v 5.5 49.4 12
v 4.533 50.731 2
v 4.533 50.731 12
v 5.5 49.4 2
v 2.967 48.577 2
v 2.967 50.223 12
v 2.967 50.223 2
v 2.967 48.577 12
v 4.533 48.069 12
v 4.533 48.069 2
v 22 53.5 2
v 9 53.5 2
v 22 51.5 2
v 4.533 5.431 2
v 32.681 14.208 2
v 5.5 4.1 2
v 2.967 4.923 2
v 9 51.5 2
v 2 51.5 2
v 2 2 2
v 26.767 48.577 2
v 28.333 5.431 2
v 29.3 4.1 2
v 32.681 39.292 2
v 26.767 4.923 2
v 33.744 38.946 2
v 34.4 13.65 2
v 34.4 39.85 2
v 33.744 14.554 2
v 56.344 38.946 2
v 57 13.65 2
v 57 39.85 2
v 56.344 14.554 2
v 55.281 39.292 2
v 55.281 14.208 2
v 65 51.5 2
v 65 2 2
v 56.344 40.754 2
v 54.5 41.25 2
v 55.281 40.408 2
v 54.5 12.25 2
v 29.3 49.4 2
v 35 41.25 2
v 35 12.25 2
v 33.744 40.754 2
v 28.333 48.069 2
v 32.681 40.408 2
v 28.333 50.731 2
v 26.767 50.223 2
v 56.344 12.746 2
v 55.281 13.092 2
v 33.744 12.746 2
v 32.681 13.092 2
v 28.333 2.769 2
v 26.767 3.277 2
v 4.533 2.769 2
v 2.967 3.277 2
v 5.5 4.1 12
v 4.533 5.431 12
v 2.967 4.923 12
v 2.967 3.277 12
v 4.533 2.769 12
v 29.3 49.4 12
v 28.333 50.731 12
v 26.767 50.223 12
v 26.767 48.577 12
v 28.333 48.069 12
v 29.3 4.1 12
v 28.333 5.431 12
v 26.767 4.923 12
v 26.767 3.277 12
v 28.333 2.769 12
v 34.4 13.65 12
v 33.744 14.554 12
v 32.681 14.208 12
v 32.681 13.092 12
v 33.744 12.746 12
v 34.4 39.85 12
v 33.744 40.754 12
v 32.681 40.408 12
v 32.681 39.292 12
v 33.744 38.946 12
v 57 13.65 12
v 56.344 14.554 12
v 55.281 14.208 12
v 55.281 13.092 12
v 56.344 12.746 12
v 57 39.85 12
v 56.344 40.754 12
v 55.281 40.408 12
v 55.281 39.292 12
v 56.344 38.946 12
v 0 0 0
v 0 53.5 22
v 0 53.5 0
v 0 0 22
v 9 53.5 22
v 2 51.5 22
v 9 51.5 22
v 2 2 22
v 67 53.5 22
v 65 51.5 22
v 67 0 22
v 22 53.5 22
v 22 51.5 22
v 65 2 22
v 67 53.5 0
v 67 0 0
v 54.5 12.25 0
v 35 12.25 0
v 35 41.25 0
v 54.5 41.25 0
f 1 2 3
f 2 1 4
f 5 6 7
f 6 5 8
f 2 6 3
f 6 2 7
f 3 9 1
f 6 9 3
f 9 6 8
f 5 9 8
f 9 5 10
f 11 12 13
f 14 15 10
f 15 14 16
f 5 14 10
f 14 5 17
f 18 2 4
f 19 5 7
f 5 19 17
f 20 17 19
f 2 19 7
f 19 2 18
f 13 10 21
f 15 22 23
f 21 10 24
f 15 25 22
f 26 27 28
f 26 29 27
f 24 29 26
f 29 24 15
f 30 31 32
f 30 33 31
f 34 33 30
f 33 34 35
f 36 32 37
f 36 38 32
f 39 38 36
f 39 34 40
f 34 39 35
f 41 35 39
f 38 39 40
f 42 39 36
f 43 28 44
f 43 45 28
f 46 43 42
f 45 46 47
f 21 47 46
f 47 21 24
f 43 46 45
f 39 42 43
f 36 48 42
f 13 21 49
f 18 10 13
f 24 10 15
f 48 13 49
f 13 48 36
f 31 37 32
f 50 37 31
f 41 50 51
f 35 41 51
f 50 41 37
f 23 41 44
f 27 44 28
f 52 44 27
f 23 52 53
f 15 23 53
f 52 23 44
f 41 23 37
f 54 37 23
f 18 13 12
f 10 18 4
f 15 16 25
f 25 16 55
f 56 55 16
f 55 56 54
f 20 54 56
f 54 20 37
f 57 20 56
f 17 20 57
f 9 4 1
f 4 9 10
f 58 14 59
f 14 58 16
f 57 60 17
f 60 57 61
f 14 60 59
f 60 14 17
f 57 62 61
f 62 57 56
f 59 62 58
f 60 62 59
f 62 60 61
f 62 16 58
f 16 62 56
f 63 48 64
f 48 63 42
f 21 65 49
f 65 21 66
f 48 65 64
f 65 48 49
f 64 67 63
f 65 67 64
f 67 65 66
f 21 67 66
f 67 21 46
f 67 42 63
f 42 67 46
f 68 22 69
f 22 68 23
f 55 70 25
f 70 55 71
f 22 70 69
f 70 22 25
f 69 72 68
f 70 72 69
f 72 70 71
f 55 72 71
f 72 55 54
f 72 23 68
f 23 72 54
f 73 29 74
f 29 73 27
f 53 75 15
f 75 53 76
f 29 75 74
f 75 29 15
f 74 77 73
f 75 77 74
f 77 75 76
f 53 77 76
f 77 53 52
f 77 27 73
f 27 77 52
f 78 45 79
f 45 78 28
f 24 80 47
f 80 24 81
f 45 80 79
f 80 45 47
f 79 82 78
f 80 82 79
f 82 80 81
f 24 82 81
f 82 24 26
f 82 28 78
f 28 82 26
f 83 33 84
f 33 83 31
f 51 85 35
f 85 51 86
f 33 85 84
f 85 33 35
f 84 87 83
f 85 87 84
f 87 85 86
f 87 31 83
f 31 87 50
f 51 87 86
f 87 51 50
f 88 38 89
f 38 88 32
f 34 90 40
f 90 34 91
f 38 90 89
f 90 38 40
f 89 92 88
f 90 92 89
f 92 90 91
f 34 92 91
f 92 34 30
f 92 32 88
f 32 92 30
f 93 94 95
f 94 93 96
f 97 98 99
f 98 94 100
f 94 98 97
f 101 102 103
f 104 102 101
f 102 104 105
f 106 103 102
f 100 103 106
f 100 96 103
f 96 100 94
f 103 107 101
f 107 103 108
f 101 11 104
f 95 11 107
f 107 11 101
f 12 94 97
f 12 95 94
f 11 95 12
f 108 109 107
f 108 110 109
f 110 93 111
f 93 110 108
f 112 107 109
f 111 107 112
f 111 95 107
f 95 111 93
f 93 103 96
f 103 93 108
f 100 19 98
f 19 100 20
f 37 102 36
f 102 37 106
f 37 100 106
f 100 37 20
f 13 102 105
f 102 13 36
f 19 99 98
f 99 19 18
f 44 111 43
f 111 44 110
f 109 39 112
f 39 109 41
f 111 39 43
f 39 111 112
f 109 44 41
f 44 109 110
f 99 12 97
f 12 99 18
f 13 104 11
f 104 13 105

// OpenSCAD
module esp32_case()
{
    // Dimensions (adjust as needed for your ESP32 model)
    sensor_length    = 62;
    sensor_width     = 49;  // mm
    sensor_offset    = 0.7;
    
    esp_board_width  = 51.5;
    esp_board_length = 28;
    
    screen_width = 29;
    screen_length = 19.5;
    screen_posX = esp_board_length + 5;
    
    wall_thickness   = 2;   // mm
    case_width       = esp_board_width + wall_thickness;       // mm
    case_length      = sensor_length + wall_thickness + 3;       // mm
    case_height      = 20;  // mm
    
    // Column size (adjust if needed)
    column_diameter  = 2.8; // mm
    column_height = 10;
    column_lcd_diameter = 1.9;

    // Flange dimensions
    flange_thickness = 1;   // thickness in Y
    flange_height    = 3; 
    flange_length = 20;

    union() {
        //
        // 1) Main case shell
        //
        difference() {
            // Outer block
            cube([case_length, case_width, wall_thickness + case_height]);
            
            // Hollow interior
            translate([wall_thickness, wall_thickness, wall_thickness])
                cube([
                    case_length - 2*wall_thickness,
                    case_width  - 2*wall_thickness,
                    case_height
                ]);

            // Window on the base
            translate([
                screen_posX + wall_thickness,
                (case_width - screen_width) / 2,
                0
            ])
            cube([screen_length, screen_width, wall_thickness + 0.1]);
            // Window on the wall
            translate([
                wall_thickness+7,
                case_width-wall_thickness,
                wall_thickness
            ])
            cube([13, wall_thickness, case_height]);
        }

        // 4 support columns (existing)
        xPositions = [
            wall_thickness + sensor_offset + 0.5*column_diameter,
            wall_thickness + esp_board_length - sensor_offset - 0.5*column_diameter
        ];

        yPositions = [
            case_width - wall_thickness - sensor_offset - 0.5*column_diameter,         // Front columns
            wall_thickness + sensor_offset + 0.5*column_diameter                        // Rear columns
        ];

        for (xPos = xPositions)
            for (yPos = yPositions)
                translate([xPos, yPos, wall_thickness])
                    cylinder(h = column_height, d = column_diameter);

        // 4 support columns around the window
        // Calculate the window's edges
        window_left   = screen_posX + wall_thickness;
        window_right  = window_left + screen_length;
        window_bottom = (case_width - screen_width) / 2;
        window_top    = window_bottom + screen_width;

        // Offset so columns sit just outside the window cutout
        window_x_positions = [
            window_left   - 0.5*column_lcd_diameter-0.6,
            window_right  + 0.5*column_lcd_diameter+0.6
        ];

        window_y_positions = [
            window_bottom + 0.5*column_diameter,
            window_top    - 0.5*column_diameter
        ];

        for (xPos = window_x_positions)
            for (yPos = window_y_positions)
                translate([xPos, yPos, wall_thickness])
                    cylinder(h = column_height, d = column_lcd_diameter);
    }
}

// Call the module
esp32_case();
